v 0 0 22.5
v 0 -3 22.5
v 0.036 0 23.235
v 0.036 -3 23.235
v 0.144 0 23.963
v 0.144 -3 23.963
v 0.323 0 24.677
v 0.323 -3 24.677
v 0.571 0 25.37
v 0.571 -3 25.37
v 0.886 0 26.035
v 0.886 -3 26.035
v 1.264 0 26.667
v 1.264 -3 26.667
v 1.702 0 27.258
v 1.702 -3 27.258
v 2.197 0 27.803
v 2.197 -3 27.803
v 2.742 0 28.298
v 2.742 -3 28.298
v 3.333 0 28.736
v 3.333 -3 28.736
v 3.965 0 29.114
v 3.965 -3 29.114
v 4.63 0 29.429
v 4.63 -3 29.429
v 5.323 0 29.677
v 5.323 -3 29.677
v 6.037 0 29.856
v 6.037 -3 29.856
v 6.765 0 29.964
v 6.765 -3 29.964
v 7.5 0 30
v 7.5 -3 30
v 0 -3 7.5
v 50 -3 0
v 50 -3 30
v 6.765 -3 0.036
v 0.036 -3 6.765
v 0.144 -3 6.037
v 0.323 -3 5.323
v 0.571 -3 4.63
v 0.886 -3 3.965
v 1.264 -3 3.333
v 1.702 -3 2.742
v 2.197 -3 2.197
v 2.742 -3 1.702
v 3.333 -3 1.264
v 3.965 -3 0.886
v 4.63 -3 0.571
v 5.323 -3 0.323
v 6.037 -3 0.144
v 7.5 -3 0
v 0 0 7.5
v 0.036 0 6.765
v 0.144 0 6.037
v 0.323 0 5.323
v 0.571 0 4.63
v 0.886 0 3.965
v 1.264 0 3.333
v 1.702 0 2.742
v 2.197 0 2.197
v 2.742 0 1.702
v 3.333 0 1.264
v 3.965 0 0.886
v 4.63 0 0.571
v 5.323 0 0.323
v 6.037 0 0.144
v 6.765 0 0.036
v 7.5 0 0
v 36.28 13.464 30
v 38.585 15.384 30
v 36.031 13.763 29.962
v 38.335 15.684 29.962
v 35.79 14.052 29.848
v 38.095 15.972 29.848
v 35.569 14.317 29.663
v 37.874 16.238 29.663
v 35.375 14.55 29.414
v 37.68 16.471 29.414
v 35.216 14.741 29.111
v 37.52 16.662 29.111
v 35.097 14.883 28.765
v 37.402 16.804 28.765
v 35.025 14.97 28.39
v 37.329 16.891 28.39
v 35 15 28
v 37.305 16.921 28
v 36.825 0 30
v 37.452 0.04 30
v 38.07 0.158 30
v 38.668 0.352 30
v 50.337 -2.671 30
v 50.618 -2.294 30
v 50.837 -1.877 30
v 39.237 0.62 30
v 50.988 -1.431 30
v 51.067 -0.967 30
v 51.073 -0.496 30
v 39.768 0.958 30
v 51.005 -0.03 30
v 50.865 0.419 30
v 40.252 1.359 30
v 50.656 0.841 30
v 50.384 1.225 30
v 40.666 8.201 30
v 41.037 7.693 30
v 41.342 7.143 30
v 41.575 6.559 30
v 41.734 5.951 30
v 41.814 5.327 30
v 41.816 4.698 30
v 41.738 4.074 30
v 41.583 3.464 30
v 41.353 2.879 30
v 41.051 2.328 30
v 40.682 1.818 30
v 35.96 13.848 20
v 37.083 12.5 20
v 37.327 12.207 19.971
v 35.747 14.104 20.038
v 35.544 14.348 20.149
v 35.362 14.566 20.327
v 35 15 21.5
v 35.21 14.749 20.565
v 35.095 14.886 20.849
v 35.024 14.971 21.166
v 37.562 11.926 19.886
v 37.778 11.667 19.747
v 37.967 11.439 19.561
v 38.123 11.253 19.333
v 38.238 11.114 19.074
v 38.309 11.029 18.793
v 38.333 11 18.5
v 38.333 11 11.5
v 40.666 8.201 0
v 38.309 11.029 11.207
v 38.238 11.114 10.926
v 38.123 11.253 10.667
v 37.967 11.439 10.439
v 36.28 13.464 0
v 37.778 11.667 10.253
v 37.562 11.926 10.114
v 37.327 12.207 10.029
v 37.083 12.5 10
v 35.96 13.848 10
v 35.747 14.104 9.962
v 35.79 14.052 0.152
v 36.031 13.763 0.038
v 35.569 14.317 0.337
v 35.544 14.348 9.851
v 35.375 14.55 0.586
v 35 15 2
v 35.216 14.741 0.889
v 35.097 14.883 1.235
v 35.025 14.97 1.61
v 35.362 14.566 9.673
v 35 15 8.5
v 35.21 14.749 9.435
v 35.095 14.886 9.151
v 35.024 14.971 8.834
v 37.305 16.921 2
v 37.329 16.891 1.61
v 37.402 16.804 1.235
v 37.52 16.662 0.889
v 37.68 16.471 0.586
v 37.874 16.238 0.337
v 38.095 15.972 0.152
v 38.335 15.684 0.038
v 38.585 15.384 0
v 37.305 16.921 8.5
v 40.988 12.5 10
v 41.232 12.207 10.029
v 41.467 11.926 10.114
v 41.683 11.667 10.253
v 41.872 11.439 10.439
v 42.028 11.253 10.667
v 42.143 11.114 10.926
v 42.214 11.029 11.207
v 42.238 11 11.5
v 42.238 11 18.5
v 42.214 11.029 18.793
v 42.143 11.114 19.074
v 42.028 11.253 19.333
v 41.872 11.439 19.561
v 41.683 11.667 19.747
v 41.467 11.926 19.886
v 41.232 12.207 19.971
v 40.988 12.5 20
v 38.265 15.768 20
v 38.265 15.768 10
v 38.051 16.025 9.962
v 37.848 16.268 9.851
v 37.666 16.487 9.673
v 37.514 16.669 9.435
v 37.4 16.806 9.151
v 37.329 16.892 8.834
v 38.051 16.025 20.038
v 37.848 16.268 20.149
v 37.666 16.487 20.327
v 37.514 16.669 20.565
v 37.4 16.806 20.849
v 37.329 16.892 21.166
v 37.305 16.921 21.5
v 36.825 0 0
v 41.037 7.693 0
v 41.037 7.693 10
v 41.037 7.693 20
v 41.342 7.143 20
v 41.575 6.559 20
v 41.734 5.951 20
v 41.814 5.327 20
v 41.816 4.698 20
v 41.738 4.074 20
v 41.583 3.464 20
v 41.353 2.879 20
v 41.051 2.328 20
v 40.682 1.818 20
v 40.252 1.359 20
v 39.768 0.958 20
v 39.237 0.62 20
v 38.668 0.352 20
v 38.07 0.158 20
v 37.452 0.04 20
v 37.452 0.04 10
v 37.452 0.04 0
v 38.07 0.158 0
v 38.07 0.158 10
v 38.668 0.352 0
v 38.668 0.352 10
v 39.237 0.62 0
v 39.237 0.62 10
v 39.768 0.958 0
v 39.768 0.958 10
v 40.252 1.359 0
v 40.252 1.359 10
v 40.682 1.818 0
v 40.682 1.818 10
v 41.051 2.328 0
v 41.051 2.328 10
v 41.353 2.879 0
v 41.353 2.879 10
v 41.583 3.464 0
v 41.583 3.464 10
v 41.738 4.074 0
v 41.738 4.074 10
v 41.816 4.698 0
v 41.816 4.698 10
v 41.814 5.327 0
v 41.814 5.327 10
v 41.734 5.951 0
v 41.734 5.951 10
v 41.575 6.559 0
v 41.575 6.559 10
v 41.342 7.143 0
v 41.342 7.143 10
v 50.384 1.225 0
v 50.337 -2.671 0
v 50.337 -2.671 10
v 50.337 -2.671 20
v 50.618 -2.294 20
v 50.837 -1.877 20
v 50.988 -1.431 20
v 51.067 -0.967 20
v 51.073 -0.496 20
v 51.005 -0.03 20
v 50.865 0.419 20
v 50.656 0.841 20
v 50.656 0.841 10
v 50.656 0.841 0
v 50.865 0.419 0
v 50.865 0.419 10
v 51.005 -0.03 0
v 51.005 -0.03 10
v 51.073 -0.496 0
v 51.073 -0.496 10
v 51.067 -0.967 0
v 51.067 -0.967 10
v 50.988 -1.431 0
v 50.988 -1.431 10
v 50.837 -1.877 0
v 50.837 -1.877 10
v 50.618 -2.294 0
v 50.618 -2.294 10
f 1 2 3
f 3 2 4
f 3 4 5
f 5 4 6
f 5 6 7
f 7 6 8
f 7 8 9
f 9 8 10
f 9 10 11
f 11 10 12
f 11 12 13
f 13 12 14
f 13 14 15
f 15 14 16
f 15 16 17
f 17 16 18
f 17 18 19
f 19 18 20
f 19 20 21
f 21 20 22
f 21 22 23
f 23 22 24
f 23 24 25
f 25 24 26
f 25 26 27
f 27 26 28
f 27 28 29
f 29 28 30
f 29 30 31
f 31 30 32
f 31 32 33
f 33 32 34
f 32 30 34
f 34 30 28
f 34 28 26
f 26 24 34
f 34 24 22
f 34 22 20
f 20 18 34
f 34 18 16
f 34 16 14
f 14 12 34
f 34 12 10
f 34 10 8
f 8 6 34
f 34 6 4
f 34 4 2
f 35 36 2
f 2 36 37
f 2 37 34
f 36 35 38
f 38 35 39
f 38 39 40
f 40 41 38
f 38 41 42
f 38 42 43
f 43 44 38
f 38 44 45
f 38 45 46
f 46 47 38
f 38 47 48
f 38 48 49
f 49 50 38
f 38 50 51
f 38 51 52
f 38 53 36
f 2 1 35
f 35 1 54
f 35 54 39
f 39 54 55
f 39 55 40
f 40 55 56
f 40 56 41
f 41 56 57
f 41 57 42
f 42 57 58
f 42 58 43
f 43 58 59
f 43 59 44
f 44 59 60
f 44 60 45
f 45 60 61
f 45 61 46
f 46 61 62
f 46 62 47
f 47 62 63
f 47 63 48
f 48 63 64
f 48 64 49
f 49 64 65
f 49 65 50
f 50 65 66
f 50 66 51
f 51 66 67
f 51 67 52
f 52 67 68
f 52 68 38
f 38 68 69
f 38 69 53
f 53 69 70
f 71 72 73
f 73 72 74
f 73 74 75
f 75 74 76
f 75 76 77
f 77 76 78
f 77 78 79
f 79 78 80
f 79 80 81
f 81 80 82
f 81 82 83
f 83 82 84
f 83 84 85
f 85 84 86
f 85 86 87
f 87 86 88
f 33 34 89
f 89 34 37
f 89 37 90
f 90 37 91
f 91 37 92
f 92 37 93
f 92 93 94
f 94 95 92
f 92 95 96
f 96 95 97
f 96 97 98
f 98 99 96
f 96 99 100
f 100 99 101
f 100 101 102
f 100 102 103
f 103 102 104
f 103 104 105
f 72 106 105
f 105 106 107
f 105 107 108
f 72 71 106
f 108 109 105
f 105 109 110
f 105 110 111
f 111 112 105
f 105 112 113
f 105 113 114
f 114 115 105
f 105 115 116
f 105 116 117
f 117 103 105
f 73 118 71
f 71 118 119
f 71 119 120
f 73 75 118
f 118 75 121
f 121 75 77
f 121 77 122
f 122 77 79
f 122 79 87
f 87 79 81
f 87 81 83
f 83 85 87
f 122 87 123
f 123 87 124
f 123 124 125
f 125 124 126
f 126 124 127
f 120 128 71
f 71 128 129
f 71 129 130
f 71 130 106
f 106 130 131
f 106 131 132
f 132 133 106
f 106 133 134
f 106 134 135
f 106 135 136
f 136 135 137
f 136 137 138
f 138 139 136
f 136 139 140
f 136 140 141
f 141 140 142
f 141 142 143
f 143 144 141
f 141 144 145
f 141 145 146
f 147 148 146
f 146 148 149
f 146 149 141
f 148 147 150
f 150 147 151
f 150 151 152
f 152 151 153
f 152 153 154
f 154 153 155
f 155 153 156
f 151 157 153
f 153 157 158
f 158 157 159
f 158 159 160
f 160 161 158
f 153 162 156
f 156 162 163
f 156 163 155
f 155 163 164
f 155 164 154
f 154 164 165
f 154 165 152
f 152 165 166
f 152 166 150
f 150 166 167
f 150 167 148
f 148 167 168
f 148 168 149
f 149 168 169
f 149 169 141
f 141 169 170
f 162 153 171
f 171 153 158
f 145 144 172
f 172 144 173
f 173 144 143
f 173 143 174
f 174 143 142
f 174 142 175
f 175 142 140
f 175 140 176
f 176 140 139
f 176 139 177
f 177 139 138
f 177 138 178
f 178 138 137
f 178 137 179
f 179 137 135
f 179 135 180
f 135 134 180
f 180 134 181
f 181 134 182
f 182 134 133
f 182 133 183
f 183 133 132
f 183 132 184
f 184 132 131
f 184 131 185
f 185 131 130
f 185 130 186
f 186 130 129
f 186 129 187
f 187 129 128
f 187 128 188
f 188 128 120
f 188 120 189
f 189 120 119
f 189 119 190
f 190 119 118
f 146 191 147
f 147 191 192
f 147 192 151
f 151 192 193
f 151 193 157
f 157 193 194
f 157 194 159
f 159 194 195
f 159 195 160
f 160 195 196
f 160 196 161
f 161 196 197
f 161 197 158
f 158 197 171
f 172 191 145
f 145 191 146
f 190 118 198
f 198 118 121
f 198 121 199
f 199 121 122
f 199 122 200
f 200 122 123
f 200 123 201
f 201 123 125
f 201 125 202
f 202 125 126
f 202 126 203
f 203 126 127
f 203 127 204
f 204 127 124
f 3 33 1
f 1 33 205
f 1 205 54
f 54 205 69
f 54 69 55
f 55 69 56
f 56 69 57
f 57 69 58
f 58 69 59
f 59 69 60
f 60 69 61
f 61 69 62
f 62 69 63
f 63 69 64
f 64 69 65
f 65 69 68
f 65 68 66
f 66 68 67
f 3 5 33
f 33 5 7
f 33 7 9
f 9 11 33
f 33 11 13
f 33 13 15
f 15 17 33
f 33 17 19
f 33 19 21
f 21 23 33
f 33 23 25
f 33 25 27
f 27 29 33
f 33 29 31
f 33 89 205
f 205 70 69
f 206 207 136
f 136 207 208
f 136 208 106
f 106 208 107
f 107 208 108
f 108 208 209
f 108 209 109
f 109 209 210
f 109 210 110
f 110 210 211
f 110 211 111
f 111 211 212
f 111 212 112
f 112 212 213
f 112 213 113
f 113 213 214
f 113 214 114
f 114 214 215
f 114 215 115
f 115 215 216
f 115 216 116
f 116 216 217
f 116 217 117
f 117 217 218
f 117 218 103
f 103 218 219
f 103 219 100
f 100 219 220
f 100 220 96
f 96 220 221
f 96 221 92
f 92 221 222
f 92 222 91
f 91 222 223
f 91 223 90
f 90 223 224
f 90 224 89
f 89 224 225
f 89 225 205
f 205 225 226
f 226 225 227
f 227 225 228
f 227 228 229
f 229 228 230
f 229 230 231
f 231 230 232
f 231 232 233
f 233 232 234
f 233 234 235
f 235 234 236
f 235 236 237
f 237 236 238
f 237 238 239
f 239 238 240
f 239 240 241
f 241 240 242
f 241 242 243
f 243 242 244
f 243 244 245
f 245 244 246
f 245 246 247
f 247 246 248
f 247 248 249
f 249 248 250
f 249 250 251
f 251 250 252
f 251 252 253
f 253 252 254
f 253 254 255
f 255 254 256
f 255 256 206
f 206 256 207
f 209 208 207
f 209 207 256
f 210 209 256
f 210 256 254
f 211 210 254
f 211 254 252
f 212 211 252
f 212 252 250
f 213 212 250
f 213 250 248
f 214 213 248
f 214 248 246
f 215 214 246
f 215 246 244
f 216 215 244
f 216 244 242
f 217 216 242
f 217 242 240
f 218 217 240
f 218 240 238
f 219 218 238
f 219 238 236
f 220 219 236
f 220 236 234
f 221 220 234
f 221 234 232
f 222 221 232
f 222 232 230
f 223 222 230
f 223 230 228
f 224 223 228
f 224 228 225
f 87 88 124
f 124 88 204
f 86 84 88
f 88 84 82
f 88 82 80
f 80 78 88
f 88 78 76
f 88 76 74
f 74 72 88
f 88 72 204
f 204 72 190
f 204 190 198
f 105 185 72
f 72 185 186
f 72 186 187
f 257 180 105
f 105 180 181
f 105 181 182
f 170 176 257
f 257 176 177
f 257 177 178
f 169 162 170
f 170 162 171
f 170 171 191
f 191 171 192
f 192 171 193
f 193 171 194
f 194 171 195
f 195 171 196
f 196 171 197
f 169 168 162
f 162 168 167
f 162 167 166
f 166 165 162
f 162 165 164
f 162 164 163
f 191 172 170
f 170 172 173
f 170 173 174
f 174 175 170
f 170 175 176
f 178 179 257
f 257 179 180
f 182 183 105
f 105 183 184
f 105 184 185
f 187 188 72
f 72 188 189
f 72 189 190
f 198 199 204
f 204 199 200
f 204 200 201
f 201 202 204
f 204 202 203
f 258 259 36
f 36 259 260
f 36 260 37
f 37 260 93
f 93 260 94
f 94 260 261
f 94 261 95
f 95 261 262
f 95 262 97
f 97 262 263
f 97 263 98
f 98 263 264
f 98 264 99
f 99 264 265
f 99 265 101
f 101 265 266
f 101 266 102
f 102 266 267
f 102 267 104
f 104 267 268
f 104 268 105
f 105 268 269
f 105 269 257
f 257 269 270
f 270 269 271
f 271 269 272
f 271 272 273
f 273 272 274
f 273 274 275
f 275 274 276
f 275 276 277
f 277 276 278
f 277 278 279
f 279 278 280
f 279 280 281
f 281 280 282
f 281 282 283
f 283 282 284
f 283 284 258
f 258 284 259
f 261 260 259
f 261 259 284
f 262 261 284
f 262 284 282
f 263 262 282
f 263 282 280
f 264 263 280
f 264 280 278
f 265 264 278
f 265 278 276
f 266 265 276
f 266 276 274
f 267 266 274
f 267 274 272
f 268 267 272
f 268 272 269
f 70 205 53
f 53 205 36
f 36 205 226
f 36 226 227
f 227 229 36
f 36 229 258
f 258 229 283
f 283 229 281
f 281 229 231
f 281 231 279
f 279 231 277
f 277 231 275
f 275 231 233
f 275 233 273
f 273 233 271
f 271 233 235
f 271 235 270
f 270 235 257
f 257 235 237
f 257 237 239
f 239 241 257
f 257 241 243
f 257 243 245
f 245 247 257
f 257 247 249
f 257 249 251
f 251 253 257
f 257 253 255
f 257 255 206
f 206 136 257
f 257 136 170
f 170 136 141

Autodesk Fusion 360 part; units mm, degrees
sketch "Sketch1" plane through (0, 0, 0) normal (0, 0, 1) x (1, 0, 0)
  line L0 (0, 0) -> (36.8248, 0)
  line L1 (50, -3) -> (0, -3)
  line L2 (0, -3) -> (0, 0)
  line L3 (40.6659, 8.2009) -> (35, 15)
  line L4 (50.3841, 1.2252) -> (37.3047, 16.9206)
  line L5 (35, 15) -> (37.3047, 16.9206)
  arc A0 (50, -3) -> (50.3841, 1.2252) centre (48.0794, -0.6953) ccw
  arc A1 (36.8248, 0) -> (40.6659, 8.2009) centre (36.8248, 5) ccw
  dimension "d1" = 3
  dimension "d3" = 3
  dimension "d4" = 5
extrude "Extrude1" add sketch "Sketch1" along normal blind 30
sketch "Sketch2" plane through (0, 0, 0) normal (1, 0, 0) x (0, 1, 0)
  line L0 (0, 0) -> (0, 30)
  line L1 (0, 10) -> (25, 10)
  line L2 (0, 20) -> (25, 20)
  line L3 (11, 10) -> (11, 20)
  line L4 (20, 10) -> (20, 20)
extrude "Extrude2" cut sketch "Sketch2" along normal blind 58 contours L1 L2 L3 L4
fillet "Fillet1" radius 1.5 2 edges at (36.1523, 15.9603, 20) (36.1523, 15.9603, 10)
fillet "Fillet2" radius 1.5 2 edges at (40.2859, 11, 20) (40.2859, 11, 10)
fillet "Fillet3" radius 2 2 edges at (36.1523, 15.9603, 0) (36.1523, 15.9603, 30)
fillet "Fillet4" radius 7.5 2 edges at (0, -1.5, 0) (0, -1.5, 30)
